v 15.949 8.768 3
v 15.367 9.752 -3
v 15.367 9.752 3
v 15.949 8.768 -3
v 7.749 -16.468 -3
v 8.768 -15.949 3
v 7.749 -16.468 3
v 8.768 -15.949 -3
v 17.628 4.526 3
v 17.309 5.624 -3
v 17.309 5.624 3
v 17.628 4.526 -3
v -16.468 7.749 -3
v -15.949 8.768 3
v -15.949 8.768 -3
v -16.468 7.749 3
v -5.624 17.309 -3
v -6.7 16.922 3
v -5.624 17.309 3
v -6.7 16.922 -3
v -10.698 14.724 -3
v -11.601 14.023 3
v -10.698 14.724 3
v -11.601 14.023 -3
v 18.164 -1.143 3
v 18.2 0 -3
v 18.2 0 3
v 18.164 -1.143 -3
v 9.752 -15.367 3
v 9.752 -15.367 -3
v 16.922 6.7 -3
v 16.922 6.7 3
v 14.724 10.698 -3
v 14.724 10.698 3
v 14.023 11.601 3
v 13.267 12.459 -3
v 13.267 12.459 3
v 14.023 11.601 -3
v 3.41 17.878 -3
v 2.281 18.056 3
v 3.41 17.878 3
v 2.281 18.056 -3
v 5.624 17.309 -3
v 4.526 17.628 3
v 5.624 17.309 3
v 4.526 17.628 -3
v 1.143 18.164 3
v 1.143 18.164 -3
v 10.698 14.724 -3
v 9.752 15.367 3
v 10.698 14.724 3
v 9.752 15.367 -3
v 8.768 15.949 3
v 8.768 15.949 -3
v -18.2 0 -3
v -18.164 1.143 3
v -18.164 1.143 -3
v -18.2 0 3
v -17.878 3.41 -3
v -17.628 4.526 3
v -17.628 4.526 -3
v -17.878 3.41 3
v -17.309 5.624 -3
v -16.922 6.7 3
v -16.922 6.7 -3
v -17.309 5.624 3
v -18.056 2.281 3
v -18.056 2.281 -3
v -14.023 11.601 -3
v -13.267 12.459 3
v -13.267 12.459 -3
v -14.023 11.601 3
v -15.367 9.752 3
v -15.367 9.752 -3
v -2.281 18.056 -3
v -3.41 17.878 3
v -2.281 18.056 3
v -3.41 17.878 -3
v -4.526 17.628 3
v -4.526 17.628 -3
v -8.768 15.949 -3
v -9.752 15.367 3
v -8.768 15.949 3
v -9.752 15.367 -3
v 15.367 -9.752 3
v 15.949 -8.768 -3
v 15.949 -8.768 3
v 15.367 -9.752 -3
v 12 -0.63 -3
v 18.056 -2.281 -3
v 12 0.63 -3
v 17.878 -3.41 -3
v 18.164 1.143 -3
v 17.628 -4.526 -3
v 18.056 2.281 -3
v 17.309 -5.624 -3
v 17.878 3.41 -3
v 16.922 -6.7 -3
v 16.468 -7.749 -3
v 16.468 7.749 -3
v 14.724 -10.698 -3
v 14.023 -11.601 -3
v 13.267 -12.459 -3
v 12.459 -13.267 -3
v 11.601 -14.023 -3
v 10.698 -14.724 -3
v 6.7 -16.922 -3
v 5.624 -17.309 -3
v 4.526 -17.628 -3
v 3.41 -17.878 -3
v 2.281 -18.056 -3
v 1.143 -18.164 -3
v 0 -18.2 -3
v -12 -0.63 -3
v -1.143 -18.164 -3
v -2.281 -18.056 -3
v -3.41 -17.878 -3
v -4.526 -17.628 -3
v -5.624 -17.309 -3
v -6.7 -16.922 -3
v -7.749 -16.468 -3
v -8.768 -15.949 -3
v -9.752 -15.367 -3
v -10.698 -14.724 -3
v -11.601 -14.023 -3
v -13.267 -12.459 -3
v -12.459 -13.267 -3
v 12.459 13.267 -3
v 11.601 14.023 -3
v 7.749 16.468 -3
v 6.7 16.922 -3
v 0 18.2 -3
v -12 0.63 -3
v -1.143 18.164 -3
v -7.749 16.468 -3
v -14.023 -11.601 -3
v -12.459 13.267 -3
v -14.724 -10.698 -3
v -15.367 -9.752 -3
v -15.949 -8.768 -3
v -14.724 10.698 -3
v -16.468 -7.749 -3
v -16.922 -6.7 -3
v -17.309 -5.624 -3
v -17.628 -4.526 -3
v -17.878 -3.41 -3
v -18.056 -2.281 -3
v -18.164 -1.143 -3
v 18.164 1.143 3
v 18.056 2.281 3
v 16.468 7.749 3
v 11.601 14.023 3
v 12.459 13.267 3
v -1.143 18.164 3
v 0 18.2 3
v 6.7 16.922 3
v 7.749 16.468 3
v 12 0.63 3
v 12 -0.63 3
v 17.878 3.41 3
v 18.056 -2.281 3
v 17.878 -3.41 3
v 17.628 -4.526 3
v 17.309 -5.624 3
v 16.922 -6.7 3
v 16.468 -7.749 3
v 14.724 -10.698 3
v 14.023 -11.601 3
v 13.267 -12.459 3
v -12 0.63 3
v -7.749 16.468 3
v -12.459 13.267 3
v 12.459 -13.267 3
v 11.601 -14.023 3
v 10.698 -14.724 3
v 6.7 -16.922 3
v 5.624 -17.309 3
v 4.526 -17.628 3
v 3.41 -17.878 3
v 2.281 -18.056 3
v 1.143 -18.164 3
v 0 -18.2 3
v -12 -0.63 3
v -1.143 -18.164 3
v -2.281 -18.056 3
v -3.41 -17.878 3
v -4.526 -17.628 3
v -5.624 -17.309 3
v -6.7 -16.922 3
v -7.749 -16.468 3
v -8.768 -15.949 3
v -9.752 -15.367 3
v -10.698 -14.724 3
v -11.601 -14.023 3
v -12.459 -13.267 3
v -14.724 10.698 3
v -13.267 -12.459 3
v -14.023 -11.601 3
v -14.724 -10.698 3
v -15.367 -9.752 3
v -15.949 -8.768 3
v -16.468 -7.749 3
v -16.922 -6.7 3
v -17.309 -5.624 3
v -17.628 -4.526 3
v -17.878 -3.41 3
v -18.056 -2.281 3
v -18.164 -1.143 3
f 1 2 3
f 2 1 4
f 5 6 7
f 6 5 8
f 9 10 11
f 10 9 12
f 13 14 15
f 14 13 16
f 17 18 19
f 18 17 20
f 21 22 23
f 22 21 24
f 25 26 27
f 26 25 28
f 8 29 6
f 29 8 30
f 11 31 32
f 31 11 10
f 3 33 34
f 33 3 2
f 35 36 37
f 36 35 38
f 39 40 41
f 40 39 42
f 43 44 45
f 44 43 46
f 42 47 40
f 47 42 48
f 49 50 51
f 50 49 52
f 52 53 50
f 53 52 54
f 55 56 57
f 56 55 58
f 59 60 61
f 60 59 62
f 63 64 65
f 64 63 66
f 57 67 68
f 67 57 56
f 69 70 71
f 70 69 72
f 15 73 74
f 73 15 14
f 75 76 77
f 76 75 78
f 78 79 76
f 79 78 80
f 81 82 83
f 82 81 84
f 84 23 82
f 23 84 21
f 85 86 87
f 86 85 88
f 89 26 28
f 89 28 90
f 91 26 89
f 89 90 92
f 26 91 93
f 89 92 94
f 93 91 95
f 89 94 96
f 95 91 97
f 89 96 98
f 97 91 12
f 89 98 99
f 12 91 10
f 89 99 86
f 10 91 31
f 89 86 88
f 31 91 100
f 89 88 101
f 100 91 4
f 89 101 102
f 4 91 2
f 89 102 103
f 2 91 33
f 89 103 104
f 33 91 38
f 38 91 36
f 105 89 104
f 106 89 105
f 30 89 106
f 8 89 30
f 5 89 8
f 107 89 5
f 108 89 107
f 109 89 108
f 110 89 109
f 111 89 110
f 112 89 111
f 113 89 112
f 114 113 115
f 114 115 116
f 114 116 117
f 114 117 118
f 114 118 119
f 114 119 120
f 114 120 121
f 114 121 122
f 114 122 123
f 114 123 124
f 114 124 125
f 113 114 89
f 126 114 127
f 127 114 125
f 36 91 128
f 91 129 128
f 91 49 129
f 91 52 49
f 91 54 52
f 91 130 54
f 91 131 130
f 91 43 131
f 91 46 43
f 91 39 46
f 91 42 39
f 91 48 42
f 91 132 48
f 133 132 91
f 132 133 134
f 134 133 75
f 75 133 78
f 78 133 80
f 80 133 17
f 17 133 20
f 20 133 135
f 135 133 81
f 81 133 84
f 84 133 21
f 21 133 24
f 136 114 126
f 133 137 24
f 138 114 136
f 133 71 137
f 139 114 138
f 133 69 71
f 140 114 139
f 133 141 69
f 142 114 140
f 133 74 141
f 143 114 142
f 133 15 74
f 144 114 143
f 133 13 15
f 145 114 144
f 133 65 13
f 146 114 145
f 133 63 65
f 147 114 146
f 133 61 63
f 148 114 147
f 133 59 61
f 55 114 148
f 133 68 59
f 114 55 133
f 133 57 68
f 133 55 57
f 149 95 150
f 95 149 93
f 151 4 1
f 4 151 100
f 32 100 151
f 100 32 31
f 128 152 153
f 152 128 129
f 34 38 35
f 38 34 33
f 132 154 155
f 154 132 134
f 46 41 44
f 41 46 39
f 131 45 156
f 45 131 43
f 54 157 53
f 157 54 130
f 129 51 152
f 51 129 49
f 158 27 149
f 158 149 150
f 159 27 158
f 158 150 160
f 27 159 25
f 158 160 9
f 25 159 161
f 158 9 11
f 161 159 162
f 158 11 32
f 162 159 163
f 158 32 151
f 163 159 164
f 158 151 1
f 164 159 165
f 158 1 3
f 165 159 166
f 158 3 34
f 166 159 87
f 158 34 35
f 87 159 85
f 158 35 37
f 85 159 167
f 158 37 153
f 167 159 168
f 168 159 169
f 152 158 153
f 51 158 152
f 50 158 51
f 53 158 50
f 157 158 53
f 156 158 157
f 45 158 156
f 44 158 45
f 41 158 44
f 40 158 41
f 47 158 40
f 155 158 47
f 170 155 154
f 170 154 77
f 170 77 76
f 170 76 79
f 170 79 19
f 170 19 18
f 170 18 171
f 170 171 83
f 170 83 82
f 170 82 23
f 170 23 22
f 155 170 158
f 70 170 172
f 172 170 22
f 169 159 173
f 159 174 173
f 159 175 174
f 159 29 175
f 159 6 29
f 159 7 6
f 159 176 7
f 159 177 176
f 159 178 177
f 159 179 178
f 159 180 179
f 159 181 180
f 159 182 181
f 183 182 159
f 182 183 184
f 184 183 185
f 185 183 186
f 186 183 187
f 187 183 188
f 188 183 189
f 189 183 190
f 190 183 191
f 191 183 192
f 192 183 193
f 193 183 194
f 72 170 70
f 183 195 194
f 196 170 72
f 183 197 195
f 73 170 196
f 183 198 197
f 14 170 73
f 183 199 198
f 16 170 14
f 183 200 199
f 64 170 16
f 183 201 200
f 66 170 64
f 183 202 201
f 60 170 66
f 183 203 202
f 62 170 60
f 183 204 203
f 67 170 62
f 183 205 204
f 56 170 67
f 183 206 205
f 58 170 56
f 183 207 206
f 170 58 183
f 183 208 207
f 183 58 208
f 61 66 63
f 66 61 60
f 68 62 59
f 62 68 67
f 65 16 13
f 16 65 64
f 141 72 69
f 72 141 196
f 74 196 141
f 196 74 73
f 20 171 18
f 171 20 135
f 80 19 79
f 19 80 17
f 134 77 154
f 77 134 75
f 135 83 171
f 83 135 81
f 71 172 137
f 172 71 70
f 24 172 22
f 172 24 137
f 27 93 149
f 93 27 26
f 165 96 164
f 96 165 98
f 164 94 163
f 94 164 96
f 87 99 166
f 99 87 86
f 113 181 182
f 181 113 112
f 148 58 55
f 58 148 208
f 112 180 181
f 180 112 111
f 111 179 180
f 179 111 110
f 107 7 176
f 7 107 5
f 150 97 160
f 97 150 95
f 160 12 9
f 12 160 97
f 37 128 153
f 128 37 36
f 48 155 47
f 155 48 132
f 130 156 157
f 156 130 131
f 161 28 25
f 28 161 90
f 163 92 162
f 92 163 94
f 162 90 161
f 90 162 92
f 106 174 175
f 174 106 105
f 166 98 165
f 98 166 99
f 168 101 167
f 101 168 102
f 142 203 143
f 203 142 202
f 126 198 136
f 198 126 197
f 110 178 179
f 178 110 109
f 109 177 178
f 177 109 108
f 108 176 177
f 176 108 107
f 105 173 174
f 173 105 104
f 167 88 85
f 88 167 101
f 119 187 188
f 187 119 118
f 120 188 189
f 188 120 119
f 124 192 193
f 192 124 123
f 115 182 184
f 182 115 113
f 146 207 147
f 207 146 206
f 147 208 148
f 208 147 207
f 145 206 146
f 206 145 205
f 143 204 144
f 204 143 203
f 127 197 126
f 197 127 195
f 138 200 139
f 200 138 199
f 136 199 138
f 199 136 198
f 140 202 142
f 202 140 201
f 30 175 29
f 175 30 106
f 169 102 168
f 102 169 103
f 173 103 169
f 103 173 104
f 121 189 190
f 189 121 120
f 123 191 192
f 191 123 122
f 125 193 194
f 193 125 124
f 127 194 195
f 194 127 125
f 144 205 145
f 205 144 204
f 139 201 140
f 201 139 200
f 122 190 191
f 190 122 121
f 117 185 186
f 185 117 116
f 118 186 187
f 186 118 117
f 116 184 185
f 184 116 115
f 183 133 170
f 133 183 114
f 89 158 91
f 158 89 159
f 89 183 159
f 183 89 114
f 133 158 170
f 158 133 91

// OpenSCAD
difference() {
cylinder(r=18.2,h=6,center=true, $fn=100);
    cube([24,1.26,10], center=true);
    
    
}
